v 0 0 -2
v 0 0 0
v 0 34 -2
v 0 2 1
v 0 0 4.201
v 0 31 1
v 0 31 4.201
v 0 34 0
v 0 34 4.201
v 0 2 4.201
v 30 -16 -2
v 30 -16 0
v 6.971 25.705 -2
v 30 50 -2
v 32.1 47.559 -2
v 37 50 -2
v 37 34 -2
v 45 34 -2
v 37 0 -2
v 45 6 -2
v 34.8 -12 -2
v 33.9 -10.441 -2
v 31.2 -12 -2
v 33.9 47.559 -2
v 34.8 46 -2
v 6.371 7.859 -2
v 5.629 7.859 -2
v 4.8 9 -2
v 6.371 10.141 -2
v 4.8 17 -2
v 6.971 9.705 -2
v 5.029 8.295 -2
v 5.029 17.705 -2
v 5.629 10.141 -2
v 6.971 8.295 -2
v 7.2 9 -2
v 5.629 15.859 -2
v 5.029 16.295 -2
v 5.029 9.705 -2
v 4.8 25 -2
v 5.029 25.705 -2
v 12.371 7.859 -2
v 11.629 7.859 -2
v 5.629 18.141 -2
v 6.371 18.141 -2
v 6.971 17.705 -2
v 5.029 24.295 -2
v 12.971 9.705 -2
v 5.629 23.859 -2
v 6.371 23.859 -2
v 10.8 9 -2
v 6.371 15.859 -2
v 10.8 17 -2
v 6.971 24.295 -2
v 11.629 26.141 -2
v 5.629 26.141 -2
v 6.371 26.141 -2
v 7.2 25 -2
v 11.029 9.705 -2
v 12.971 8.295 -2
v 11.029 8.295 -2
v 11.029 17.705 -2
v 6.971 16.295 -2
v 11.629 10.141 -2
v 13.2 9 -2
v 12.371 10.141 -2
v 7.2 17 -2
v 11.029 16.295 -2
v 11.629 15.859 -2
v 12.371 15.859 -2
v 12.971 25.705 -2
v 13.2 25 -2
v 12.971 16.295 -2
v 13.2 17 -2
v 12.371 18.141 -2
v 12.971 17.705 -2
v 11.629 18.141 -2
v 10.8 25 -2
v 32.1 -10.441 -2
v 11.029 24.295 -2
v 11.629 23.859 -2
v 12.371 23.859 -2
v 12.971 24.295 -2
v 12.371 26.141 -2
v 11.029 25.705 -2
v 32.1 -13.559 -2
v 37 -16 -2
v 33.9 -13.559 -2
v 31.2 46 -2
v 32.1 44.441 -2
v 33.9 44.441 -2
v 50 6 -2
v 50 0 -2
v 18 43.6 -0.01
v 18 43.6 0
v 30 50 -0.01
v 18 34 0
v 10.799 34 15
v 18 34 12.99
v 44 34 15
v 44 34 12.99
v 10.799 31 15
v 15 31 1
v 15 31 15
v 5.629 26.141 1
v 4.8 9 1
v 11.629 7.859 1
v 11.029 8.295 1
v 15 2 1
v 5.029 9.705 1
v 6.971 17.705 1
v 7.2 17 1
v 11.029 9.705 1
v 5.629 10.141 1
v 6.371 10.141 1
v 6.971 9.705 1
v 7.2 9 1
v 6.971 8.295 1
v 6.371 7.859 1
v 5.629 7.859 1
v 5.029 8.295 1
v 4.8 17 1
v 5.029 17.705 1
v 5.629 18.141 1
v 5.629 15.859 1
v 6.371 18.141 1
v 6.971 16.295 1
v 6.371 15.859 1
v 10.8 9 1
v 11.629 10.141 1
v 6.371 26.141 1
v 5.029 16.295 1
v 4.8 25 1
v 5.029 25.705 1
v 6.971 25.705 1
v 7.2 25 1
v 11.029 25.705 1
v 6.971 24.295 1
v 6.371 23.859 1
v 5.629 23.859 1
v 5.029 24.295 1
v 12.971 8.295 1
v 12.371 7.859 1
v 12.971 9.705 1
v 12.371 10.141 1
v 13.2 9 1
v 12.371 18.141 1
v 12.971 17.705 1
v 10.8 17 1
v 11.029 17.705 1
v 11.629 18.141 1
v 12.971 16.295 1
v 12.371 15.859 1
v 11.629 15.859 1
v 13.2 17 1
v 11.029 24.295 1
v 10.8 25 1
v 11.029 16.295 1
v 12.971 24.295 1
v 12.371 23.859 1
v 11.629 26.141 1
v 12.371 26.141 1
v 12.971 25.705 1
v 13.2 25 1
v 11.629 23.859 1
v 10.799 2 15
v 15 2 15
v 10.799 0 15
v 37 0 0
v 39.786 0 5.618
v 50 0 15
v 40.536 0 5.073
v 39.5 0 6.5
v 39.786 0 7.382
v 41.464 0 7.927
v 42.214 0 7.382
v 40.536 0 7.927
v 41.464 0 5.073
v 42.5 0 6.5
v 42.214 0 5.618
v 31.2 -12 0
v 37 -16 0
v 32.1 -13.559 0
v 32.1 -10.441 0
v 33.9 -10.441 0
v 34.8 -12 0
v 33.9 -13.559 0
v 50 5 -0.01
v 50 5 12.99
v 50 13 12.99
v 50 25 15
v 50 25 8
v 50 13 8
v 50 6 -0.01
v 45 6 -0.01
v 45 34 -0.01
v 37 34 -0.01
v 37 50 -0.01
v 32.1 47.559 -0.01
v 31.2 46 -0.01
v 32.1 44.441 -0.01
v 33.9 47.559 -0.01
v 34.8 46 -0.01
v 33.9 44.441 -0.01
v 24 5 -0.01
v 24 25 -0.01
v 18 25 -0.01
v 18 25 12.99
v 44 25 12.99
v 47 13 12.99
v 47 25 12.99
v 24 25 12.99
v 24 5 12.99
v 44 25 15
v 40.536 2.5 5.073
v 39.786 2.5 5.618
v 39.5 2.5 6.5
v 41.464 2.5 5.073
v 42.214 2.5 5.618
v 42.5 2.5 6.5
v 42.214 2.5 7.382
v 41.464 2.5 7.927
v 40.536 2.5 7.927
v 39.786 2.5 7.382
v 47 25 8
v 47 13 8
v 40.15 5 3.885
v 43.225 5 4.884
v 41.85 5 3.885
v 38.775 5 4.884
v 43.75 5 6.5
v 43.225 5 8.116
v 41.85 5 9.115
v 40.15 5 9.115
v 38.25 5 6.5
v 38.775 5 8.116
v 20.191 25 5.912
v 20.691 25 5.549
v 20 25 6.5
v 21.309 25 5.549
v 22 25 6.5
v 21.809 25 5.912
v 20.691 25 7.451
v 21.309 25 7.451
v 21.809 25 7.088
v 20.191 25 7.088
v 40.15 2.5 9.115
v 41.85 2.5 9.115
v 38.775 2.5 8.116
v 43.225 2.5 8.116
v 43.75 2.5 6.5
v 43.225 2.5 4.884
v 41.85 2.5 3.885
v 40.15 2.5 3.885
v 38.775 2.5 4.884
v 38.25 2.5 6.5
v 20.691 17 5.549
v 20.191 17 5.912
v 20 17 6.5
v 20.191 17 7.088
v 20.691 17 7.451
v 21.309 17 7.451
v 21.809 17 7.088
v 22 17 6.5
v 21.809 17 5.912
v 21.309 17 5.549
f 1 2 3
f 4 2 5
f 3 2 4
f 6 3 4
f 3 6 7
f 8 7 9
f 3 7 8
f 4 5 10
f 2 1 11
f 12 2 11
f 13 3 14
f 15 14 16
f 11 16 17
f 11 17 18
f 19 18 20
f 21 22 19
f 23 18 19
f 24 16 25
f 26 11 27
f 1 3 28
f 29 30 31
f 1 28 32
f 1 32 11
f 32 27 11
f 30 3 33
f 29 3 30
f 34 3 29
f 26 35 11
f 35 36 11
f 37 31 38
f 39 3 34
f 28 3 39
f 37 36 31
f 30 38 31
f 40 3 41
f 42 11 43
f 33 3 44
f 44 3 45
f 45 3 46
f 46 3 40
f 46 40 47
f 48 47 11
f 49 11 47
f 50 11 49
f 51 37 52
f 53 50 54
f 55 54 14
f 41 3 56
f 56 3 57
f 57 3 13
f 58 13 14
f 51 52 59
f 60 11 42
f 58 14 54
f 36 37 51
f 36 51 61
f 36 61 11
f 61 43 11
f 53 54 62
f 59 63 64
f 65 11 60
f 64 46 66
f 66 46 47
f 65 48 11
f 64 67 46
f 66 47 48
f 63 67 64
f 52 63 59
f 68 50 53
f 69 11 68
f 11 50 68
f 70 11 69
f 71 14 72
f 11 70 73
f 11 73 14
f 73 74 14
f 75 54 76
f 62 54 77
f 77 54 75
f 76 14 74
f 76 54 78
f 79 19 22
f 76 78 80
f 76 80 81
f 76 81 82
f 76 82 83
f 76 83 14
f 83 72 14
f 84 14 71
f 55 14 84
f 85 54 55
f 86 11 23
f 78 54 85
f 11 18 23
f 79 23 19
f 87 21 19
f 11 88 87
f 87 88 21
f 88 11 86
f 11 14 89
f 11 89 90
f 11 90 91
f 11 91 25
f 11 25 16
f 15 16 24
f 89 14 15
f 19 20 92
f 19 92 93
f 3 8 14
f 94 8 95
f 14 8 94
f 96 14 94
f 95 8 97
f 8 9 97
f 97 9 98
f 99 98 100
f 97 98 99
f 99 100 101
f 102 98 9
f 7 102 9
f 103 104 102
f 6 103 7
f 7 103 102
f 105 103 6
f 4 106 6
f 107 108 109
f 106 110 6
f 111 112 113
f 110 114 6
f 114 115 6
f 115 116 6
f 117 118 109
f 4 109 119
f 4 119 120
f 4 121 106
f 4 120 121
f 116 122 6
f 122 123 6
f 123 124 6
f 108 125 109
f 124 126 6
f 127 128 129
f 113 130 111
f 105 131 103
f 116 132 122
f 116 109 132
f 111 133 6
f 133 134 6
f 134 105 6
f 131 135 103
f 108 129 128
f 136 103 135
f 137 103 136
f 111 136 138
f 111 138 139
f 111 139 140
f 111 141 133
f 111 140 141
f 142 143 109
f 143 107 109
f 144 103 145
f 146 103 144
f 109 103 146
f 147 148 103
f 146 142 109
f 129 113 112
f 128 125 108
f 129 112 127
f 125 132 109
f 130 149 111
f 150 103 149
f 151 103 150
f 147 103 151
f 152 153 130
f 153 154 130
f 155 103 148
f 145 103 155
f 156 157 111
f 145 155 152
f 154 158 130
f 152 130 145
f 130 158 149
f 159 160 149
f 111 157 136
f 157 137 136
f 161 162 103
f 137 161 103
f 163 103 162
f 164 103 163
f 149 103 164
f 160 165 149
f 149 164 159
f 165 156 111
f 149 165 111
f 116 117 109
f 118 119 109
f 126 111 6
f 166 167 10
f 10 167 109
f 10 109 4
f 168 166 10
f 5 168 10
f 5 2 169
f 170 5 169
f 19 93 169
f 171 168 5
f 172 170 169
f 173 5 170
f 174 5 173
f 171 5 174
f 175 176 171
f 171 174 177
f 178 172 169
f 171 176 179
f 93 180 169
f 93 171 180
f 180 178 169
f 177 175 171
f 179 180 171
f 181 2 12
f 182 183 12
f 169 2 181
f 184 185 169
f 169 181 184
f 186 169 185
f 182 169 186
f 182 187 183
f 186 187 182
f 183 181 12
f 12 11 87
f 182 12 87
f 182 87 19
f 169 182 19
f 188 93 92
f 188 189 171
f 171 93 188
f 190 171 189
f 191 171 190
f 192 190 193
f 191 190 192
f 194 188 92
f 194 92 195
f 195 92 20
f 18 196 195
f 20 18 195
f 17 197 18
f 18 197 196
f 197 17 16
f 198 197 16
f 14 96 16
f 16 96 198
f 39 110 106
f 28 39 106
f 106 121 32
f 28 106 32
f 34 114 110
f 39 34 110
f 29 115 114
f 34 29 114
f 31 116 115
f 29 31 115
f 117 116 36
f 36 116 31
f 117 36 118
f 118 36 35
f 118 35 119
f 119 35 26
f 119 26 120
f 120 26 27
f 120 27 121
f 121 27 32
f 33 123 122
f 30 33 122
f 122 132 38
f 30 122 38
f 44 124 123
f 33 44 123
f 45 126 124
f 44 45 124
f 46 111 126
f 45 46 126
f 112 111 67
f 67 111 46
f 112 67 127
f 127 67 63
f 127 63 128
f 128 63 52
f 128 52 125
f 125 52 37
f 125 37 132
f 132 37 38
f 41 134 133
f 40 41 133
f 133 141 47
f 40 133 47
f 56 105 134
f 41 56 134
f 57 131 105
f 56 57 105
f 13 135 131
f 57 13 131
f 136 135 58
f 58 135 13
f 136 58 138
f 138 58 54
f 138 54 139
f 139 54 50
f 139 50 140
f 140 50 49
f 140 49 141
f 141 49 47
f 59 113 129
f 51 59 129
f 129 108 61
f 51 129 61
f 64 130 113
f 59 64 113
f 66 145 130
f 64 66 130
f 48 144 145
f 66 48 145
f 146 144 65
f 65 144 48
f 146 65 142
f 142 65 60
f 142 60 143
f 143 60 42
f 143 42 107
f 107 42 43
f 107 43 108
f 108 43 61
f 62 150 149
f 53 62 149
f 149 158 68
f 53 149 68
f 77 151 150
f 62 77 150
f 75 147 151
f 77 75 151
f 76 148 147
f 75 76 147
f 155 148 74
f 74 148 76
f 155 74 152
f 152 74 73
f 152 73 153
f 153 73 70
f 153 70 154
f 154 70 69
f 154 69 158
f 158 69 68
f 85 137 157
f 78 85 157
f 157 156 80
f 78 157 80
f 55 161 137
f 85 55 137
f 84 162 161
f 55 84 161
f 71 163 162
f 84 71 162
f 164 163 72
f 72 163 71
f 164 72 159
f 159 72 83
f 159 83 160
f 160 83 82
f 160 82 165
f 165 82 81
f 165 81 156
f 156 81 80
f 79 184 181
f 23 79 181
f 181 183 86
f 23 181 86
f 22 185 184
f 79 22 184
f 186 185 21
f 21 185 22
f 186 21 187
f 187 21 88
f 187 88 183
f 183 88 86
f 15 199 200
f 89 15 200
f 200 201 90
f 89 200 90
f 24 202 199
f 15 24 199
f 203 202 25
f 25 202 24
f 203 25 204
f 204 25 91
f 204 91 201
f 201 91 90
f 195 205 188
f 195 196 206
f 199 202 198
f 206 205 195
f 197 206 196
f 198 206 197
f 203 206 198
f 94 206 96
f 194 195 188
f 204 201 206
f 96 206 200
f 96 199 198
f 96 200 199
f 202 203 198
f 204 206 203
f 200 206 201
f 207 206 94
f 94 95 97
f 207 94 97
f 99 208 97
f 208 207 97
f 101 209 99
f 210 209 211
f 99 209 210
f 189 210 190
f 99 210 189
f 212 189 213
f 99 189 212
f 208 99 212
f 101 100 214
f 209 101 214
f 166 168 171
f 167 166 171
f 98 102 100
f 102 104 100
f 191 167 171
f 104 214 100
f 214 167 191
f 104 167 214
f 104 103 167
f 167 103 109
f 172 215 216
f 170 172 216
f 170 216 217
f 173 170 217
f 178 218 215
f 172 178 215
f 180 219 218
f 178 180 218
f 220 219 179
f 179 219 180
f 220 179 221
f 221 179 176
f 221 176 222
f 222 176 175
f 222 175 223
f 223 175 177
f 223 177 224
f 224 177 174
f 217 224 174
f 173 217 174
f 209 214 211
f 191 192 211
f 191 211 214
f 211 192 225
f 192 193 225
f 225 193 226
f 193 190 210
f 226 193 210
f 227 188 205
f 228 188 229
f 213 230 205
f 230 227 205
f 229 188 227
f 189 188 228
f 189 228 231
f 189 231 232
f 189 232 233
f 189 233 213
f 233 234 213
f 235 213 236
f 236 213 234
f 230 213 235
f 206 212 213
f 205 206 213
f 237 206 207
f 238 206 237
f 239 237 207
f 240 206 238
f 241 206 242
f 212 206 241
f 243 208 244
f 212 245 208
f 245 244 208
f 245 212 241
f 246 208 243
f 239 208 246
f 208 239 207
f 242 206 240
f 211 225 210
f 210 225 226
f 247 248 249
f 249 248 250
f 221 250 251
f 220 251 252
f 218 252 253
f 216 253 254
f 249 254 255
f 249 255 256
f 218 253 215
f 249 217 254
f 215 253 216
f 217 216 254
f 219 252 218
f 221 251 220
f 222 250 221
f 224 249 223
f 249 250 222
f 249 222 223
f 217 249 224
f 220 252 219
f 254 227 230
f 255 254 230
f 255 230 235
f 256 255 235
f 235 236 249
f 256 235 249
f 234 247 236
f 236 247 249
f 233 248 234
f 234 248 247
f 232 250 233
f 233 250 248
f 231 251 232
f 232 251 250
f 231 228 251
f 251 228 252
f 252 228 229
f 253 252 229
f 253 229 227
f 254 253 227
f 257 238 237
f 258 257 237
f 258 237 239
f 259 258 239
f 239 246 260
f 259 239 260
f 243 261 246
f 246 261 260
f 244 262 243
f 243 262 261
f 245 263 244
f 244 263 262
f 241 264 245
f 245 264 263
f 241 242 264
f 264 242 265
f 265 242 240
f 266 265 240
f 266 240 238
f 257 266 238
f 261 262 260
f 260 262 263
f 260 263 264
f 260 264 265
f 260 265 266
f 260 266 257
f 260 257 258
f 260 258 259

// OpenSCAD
// file: raid3r/raid3r.scad
/*Pequeña biblioteca con las funciones mas comunes*/

module agujereado(X,Y,H){
	union(){
		for(j=[0:X-1])
		{
			translate([0,j*8,0])
			{
				for(i=[0:Y-1])
				{
					translate([i*6,0,-1])cylinder(r=1.2, h=H, $fn=10);
				}
			}
		}
	}
}

module dynahole(H){
	translate([-45.5/2,-10,1])union(){
		translate([3.5+6,16,0])agujereado(4,1,H);
		translate([9.5+26.5,16,0])agujereado(4,1,H);
		translate([45.5/2,10,-1])cylinder(r=11.5,h=H);	
		translate([(45.5-20)/2,6.5,-1])cube([20,36,H]);
		translate([22.5,46,0])union(){
			translate([7,0,-1])cylinder(r=1.5, h=H, $fn=10);
			translate([-7,0,-1])cylinder(r=1.5, h=H, $fn=10);
		}
	}
}

module cruz(H){
	translate([-34,-13,3])union(){
		translate([34,13,-3]) cylinder(r=4,h=H);
		translate([42,13,-3]) cylinder(r=1.5,h=H);
		translate([26,13,-3]) cylinder(r=1.5,h=H);
		translate([34,21,-3]) cylinder(r=1.5,h=H);
		translate([34,5,-3]) cylinder(r=1.5,h=H);
	}
}

module miniservo(H){
	translate([-15,-7,0])union(){
		translate([15,7,0])rotate([0,0,0])cylinder(r=8,h=H);
		translate([-1.75,7,0])union(){
			cylinder(r=1.5, h=H,$fn=20);
			translate([27.5,0,0])cylinder(r=1.5, h=H,$fn=20);
		}
	}
}

module beagleboneHoles(z){
union(){
	translate([0,0,-1])cylinder(r=2,h=z, $fn=8);
	translate([0,46.5,-1])cylinder(r=2,h=z, $fn=8);
	translate([64.5+1.5,2.5,-1])cylinder(r=2,h=z, $fn=8);
	translate([64.5+1.5,44,-1])cylinder(r=2,h=z, $fn=8);
	translate([0,0,-1])cylinder(r=3,h=3, $fn=8);
	translate([0,46.5,-1])cylinder(r=3,h=3, $fn=8);
	translate([64.5+1.5,2.5,-1])cylinder(r=3,h=3, $fn=8);
	translate([64.5+1.5,44,-1])cylinder(r=3,h=3, $fn=8);
	}
}
// main file
use <raid3r/raid3r.scad>


//servo  34+5+5=44
//Ancho externo de la cabeza 44
//Ancho interno de la cabeza 36
//Ancho de la placa de la camara 38


module agujereado(X,Y,H){
	union(){
		for(j=[0:X])
		{
			translate([0,j*8,0])
			{
				for(i=[0:Y])
				{
					translate([i*6,0,-1])cylinder(r=1.2, h=H, $fn=10);
				}
			}
		}
	}
}

offset=5;


rotate([0,0,0])
difference(){
union(){
translate([0,0,-2])cube([50,34,17]);
hull(){
translate([30,-16,-2])cube([7,66,2]);
translate([0,0,-2])cube([1,34,2]);
}

}
	//cube([50,34,15]);
	//translate([24+offset,17,-1])rotate([0,0,90]){
		//translate([16,0,0])agujereado(3,0,20);
		//mirror([1,0,0])translate([16,0,0])agujereado(3,0,20);
	//}
	translate([24,5,-0.01])cube([23,50,13]);
	translate([18,25,-0.01])cube([50,50,13]);
	translate([30,5,-0.01])cube([50,8,13]);
	translate([45,6,-5])cube([50,50,13]);
	translate([44,25,7])cube([50,50,13]);

	translate([21,17,13/2])rotate([-90,0,0])cylinder(r=1,h=20,$fn=10);
	translate([41,-1,13/2])rotate([-90,0,0])cylinder(r=1.5,h=40,$fn=10);
	translate([41,2.5,13/2])rotate([-90,0,0])cylinder(r=5.5/2,h=40,$fn=10);
	translate([-3,2,1])rotate([0,0,0])cube([18,29,40]);
	translate([-21,2-5,3])rotate([0,45,0])cube([14,29+10,40]);
translate([6,17-8,-2])agujereado(2,1,90);
translate([33,-16+4,-5])cylinder(r=1.8,h=10);
translate([33,50-4,-5])cylinder(r=1.8,h=10);

}
